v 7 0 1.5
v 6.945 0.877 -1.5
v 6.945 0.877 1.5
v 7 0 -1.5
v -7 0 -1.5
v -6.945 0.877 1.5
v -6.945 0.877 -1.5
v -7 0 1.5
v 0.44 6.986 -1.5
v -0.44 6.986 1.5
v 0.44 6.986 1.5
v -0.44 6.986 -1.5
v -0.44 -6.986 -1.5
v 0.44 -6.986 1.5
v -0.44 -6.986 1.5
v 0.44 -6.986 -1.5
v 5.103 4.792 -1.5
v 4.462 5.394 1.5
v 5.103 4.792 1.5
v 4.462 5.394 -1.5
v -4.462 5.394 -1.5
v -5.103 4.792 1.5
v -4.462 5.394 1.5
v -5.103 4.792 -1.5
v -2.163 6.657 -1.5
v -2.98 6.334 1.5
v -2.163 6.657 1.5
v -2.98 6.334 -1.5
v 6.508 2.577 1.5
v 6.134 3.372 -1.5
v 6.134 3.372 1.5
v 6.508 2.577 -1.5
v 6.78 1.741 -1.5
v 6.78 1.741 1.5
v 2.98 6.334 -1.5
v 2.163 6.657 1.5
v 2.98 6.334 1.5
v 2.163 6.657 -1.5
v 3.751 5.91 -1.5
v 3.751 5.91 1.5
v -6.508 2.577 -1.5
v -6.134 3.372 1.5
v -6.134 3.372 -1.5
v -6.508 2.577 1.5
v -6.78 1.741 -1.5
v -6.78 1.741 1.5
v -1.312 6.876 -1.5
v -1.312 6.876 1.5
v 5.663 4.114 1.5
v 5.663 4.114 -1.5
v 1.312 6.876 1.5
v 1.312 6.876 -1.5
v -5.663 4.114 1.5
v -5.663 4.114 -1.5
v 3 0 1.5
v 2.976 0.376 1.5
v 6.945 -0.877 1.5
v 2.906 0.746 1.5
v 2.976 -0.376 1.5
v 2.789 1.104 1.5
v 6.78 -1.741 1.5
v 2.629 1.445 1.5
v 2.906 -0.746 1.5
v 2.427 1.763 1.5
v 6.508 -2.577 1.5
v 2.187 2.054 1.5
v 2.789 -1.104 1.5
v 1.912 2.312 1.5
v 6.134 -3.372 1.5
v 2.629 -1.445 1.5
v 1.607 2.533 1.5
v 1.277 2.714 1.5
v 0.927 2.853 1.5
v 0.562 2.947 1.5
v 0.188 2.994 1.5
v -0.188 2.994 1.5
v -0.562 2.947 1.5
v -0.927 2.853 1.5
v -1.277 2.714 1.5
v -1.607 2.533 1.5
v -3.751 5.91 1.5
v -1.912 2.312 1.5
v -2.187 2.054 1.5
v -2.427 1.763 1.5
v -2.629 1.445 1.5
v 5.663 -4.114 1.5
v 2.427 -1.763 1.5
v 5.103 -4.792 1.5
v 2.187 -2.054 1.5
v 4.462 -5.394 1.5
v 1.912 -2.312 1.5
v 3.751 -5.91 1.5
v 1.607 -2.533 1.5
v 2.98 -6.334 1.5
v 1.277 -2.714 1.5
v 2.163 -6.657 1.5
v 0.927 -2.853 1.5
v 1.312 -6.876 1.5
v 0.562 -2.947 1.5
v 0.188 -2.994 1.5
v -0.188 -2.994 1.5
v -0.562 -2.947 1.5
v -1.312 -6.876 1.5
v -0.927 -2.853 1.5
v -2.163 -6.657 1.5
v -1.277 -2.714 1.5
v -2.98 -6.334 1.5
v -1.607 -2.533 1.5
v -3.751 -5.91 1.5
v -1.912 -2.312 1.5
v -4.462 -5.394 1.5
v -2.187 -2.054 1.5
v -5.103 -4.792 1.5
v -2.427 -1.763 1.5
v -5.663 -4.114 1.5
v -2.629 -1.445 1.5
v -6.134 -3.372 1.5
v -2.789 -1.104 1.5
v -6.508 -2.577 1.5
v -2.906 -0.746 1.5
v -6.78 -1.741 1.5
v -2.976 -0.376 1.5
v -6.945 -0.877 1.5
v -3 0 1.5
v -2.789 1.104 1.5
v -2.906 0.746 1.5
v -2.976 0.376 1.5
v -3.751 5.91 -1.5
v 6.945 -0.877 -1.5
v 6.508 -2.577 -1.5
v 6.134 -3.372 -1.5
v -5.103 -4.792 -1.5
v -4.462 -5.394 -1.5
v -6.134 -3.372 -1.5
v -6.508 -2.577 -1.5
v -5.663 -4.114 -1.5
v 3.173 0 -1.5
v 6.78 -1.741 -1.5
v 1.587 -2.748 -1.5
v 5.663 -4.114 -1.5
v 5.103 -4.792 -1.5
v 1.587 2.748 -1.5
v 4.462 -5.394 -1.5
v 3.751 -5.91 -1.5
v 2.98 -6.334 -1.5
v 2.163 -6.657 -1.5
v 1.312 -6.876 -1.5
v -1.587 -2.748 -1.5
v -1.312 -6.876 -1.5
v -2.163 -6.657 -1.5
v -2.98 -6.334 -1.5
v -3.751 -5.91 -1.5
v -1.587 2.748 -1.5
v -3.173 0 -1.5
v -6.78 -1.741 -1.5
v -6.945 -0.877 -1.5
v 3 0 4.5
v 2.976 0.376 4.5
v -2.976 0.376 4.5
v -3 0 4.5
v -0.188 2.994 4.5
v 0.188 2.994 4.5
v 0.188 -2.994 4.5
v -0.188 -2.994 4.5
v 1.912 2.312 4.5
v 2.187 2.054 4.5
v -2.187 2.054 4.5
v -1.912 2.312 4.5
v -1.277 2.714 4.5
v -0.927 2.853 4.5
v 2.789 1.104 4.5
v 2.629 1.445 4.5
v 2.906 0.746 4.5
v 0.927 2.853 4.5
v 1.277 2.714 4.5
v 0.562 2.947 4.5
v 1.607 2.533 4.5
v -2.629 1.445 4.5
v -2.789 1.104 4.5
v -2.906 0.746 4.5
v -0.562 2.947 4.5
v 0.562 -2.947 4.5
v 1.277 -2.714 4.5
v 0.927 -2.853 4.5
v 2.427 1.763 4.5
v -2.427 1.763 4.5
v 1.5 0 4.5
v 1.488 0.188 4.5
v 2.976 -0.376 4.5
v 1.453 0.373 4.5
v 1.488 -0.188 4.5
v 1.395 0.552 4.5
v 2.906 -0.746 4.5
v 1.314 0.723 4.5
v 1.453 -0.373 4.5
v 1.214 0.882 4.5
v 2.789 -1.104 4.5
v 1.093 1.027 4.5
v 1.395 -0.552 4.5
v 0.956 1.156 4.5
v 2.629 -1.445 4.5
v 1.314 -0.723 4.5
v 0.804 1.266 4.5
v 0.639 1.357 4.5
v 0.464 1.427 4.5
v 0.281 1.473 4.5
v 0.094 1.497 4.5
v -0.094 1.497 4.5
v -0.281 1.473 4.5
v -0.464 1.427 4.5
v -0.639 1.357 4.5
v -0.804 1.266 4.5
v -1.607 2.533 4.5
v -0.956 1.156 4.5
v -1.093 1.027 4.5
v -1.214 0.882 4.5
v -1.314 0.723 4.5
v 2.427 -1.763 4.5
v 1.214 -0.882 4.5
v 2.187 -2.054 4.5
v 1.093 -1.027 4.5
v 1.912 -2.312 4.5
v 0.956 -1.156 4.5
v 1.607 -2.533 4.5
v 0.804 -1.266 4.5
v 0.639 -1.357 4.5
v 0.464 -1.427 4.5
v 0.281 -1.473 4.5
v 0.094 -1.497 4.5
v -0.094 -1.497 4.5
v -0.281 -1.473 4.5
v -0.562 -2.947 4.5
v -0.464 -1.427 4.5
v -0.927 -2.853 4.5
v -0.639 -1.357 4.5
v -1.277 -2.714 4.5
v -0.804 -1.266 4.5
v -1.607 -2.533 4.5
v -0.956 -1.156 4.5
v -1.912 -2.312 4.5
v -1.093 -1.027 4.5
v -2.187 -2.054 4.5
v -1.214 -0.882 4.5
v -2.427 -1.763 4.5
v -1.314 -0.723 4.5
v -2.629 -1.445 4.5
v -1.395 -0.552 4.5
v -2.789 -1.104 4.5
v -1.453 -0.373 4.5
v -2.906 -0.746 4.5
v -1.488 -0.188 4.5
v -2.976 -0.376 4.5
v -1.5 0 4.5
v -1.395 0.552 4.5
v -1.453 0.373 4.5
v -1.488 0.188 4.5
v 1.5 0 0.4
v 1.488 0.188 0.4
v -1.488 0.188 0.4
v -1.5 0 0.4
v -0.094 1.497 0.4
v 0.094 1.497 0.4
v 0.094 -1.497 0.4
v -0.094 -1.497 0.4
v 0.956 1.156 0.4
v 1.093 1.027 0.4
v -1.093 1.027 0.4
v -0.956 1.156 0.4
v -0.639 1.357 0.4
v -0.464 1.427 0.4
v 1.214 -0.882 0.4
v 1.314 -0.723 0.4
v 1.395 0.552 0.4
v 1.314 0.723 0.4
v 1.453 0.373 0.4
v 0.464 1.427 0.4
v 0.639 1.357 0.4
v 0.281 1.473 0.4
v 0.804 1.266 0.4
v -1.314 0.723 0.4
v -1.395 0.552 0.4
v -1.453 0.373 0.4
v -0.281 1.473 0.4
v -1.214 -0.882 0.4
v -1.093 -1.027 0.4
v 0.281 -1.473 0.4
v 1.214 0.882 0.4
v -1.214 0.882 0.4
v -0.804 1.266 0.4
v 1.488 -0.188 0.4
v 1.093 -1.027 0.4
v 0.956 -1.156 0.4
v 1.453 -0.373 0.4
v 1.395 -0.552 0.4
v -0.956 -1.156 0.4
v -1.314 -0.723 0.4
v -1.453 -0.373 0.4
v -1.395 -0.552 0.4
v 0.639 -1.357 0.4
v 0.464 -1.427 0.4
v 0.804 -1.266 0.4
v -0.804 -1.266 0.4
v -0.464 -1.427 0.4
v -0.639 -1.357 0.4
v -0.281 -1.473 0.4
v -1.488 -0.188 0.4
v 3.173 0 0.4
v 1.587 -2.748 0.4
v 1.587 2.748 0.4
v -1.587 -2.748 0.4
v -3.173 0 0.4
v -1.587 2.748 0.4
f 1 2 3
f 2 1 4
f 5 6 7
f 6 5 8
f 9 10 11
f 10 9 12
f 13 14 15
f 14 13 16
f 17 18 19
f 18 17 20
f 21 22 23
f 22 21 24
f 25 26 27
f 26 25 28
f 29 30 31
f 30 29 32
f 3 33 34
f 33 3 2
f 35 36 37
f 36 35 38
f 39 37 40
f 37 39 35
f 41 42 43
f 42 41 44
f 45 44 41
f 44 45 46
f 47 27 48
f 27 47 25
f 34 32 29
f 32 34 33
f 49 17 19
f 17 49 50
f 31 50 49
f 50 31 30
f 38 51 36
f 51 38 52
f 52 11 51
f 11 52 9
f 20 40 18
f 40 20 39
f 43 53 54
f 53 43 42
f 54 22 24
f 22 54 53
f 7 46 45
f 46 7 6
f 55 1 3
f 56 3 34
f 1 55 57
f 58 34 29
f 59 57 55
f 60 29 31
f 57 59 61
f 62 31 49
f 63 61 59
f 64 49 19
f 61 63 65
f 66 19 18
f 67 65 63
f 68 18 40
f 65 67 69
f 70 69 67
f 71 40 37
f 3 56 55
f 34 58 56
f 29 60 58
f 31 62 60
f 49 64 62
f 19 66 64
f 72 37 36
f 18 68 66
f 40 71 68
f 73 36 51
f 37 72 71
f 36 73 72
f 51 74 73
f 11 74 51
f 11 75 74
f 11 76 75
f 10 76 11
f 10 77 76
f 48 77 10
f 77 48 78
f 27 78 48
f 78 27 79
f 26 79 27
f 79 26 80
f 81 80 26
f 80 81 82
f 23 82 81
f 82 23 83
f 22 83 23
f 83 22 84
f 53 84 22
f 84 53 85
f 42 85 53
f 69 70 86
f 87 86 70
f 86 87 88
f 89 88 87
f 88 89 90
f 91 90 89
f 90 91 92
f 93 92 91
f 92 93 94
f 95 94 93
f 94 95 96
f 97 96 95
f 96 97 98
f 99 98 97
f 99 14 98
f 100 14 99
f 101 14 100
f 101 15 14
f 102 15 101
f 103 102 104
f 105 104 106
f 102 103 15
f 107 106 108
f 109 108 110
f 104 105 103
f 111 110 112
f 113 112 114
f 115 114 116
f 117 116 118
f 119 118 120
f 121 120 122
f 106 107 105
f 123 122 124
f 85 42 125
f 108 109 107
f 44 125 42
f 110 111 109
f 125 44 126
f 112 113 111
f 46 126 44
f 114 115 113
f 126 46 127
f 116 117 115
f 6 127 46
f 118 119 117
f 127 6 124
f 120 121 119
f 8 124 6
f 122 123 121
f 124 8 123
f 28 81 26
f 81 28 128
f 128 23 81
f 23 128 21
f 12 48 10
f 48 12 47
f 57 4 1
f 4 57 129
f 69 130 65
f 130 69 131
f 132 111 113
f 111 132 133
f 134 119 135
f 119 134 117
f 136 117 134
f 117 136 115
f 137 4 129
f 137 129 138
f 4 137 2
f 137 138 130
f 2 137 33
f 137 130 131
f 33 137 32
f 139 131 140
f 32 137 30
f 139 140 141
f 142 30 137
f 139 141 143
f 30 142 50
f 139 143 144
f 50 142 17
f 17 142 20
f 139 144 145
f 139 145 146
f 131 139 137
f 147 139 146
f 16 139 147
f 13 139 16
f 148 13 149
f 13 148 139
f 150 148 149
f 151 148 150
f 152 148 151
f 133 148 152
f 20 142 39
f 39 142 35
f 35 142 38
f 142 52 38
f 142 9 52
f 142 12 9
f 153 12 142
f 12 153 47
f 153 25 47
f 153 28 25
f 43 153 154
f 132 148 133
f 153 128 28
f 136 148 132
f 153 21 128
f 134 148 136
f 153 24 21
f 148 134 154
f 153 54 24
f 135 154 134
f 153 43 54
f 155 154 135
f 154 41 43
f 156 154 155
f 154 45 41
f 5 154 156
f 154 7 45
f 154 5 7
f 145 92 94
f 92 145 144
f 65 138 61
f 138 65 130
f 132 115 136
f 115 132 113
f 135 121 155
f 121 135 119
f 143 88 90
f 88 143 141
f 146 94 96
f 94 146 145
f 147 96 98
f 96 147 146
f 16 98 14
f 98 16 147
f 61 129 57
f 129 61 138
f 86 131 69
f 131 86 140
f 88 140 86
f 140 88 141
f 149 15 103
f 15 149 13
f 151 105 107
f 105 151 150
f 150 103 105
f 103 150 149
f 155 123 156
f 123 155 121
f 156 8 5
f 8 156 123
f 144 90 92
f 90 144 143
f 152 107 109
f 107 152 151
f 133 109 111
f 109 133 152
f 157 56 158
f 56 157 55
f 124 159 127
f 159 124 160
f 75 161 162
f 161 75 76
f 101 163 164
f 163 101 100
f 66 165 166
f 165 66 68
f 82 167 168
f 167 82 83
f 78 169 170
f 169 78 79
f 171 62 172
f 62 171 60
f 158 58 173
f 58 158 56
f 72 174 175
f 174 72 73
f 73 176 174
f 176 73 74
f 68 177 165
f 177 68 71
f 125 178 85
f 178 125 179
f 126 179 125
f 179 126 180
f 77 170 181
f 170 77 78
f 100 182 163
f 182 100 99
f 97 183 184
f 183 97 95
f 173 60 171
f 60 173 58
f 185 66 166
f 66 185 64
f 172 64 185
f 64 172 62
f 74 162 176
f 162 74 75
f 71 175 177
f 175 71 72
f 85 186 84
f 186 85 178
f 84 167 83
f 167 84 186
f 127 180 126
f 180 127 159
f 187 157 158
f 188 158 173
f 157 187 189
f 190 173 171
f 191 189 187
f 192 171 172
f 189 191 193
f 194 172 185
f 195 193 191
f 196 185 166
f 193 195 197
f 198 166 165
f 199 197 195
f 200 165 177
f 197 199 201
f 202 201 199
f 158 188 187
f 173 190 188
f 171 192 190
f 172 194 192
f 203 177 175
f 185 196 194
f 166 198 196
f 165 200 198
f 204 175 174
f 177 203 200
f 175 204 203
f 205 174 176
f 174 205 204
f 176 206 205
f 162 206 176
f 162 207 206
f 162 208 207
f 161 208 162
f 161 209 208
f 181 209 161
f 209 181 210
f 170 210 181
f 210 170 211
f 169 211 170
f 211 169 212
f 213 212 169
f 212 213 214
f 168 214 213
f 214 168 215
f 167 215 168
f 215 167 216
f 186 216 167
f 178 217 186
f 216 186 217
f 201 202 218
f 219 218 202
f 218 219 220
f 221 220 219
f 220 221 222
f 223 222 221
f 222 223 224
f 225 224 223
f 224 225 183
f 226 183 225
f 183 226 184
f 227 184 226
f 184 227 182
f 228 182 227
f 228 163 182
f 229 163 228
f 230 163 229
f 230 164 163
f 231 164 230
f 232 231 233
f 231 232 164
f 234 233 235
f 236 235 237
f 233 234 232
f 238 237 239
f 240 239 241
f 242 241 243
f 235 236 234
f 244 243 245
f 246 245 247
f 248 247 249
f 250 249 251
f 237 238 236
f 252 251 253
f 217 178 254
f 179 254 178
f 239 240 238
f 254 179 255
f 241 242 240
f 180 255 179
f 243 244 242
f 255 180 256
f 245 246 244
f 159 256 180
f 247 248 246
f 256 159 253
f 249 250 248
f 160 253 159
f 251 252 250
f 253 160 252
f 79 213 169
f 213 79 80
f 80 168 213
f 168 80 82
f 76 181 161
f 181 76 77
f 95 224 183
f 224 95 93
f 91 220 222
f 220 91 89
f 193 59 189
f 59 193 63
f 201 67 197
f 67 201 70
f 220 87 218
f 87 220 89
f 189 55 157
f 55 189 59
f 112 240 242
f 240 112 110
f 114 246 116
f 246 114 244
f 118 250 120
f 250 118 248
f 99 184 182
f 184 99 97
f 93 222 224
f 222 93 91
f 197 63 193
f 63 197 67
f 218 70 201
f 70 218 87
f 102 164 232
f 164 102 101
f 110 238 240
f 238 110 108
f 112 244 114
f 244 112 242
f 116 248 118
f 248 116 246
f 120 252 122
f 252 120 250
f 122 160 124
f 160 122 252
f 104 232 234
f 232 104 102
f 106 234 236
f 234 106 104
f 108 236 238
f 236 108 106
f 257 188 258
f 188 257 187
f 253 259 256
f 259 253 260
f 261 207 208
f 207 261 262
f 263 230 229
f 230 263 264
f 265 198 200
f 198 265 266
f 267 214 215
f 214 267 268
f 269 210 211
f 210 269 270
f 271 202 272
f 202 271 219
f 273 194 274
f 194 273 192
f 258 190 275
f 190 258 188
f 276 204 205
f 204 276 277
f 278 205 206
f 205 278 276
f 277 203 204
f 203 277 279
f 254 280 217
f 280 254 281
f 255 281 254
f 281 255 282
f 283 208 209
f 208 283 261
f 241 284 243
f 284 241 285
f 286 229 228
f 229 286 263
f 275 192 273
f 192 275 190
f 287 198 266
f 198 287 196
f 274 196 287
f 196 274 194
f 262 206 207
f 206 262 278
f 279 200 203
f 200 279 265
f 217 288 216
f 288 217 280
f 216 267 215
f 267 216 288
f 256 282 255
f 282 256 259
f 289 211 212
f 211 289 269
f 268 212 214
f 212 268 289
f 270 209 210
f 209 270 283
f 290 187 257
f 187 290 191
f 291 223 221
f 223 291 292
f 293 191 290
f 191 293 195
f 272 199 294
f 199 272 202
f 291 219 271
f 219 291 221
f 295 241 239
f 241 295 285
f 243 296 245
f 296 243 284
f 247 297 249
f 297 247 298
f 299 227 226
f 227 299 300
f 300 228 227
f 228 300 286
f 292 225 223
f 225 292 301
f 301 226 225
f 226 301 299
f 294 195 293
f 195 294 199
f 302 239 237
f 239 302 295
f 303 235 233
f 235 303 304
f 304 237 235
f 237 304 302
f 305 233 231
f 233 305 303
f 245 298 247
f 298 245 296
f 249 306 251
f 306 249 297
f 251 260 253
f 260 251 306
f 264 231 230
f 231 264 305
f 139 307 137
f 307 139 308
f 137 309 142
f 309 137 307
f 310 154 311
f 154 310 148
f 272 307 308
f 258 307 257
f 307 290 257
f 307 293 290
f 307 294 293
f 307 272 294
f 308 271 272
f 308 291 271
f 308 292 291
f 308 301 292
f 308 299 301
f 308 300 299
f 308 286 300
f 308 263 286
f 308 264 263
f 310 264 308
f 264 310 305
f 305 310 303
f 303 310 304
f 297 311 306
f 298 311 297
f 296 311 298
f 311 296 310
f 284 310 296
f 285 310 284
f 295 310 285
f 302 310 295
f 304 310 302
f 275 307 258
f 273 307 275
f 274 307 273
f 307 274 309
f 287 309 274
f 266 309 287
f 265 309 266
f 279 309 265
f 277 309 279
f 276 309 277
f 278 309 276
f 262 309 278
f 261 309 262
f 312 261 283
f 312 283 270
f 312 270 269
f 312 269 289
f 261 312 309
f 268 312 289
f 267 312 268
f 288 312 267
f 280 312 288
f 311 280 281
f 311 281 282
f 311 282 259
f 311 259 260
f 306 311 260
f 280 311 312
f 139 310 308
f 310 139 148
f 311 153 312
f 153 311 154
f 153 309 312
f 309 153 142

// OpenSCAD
$fn = 50;


difference() {
	union() {
		translate(v = [0, 0, -1.5000000000]) {
			rotate(a = [0, 0, 0]) {
				cylinder(h = 3, r = 7.0000000000);
			}
		}
		translate(v = [0, 0, -1.5000000000]) {
			rotate(a = [0, 0, 0]) {
				cylinder(h = 6, r = 3.0000000000);
			}
		}
	}
	union() {
		translate(v = [0, 0, -125.0000000000]) {
			rotate(a = [0, 0, 0]) {
				cylinder(h = 250, r = 1.5000000000);
			}
		}
		translate(v = [0, 0, -2.1000000000]) {
			rotate(a = [0, 0, 0]) {
				#translate(v = [0, 0, 0]) {
					rotate(a = [0, 0, 0]) {
						linear_extrude(height = 2.5000000000) {
							polygon(points = [[3.1735000000, 0.0000000000], [1.5867500000, 2.7483316189], [-1.5867500000, 2.7483316189], [-3.1735000000, 0.0000000000], [-1.5867500000, -2.7483316189], [1.5867500000, -2.7483316189]]);
						}
					}
				}
			}
		}
	}
}
